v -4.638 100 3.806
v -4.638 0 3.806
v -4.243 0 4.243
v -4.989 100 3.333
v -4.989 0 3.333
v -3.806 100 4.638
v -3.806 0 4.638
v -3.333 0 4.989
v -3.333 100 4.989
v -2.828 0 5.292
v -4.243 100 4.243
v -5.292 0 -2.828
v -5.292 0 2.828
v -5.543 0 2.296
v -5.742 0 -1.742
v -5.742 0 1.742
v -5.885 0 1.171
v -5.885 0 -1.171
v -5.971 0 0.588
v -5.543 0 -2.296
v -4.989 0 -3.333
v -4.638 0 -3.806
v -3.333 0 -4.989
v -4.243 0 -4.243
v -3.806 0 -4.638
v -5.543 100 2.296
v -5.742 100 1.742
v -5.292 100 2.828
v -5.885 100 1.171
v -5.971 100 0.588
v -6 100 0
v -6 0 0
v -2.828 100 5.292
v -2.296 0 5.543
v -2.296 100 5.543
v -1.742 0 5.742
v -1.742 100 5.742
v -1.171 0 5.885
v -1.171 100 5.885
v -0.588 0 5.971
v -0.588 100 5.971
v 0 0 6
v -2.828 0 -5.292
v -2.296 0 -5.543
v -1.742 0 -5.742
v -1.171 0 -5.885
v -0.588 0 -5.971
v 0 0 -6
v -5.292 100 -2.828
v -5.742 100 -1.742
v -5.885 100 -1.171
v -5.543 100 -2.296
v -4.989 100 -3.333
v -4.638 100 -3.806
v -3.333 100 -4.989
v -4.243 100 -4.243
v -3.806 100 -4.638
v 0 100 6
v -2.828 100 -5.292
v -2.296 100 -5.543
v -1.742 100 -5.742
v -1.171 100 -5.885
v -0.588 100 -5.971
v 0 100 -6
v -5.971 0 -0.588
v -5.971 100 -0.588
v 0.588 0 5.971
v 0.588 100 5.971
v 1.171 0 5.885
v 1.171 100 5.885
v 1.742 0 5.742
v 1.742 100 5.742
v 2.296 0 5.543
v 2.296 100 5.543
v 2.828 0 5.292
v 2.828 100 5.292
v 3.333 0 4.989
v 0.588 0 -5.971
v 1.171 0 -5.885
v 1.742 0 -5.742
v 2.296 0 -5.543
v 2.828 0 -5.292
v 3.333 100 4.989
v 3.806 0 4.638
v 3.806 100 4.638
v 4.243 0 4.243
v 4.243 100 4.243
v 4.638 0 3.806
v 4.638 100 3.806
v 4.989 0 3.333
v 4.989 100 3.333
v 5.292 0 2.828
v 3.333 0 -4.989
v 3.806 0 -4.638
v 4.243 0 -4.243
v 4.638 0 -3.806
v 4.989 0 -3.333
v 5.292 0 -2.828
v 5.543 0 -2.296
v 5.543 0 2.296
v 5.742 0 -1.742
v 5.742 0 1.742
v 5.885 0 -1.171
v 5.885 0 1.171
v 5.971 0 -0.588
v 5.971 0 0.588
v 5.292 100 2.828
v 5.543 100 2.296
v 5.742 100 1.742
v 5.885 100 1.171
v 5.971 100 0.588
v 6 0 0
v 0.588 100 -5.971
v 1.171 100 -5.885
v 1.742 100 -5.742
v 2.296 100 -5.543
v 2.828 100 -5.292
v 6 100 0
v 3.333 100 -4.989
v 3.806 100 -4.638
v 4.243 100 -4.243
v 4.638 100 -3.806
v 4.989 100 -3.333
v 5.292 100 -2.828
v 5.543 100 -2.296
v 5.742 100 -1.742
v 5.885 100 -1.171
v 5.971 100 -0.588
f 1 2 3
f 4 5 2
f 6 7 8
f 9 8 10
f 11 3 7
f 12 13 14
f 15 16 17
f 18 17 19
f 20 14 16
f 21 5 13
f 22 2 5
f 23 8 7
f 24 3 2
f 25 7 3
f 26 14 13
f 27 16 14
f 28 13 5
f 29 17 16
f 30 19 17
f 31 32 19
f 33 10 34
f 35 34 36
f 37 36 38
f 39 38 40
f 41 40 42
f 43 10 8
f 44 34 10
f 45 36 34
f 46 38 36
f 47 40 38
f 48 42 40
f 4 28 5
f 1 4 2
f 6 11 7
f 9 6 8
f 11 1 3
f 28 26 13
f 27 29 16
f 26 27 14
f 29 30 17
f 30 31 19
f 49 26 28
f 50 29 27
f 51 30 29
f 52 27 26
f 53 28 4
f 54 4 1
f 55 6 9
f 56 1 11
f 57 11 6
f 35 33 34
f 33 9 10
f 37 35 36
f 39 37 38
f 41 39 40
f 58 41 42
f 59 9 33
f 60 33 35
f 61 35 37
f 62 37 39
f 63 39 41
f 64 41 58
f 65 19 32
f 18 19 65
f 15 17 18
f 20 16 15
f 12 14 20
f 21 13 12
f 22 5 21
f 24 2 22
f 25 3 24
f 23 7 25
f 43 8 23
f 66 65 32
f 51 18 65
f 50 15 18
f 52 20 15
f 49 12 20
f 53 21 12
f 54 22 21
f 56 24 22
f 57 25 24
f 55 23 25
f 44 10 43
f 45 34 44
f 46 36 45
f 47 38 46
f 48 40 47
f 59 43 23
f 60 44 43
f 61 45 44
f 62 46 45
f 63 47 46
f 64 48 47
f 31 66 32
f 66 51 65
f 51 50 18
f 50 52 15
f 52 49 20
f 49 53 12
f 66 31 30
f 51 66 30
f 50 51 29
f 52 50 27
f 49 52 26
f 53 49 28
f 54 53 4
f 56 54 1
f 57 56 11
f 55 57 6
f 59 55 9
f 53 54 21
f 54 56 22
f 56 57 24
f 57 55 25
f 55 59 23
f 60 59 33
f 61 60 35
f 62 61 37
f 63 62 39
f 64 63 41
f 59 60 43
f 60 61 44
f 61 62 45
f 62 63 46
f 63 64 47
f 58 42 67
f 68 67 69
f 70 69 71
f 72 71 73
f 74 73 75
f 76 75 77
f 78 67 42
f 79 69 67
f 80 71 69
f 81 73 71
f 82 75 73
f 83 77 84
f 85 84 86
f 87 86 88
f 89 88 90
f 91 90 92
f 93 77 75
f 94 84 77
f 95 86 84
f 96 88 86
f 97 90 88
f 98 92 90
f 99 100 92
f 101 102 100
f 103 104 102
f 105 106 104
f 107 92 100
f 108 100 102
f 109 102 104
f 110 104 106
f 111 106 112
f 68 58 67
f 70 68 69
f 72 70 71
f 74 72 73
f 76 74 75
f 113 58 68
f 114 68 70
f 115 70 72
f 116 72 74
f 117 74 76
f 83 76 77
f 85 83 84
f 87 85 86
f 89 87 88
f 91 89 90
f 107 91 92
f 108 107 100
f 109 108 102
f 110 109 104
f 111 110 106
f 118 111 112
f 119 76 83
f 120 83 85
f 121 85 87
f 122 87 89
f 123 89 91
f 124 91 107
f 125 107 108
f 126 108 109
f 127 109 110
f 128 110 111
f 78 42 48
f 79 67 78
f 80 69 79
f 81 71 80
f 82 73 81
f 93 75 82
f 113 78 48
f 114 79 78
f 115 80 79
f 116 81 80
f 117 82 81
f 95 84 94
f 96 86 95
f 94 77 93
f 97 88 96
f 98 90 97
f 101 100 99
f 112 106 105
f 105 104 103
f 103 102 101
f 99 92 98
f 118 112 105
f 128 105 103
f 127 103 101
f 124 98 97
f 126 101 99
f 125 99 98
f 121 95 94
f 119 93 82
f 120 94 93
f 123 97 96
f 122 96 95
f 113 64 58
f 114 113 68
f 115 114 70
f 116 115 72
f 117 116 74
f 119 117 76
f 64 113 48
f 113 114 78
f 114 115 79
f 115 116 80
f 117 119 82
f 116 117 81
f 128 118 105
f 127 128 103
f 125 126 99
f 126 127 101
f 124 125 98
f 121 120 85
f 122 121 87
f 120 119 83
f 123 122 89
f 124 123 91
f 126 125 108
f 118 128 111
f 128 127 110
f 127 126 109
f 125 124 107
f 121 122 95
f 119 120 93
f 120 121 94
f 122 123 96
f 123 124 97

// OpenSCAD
// TDPB nozzle changer
// Geometry follows the holder clearance profile. Its dimensions describe the pocket used in the source design. Physical tool dimensions and fit have yet to be measured.
// Units: mm
$fn = 64;
union() {
    translate([0, 0, 0]) rotate([-90, 0, 0])
        cylinder(h=100, r1=6, r2=6, $fn=64);
}
